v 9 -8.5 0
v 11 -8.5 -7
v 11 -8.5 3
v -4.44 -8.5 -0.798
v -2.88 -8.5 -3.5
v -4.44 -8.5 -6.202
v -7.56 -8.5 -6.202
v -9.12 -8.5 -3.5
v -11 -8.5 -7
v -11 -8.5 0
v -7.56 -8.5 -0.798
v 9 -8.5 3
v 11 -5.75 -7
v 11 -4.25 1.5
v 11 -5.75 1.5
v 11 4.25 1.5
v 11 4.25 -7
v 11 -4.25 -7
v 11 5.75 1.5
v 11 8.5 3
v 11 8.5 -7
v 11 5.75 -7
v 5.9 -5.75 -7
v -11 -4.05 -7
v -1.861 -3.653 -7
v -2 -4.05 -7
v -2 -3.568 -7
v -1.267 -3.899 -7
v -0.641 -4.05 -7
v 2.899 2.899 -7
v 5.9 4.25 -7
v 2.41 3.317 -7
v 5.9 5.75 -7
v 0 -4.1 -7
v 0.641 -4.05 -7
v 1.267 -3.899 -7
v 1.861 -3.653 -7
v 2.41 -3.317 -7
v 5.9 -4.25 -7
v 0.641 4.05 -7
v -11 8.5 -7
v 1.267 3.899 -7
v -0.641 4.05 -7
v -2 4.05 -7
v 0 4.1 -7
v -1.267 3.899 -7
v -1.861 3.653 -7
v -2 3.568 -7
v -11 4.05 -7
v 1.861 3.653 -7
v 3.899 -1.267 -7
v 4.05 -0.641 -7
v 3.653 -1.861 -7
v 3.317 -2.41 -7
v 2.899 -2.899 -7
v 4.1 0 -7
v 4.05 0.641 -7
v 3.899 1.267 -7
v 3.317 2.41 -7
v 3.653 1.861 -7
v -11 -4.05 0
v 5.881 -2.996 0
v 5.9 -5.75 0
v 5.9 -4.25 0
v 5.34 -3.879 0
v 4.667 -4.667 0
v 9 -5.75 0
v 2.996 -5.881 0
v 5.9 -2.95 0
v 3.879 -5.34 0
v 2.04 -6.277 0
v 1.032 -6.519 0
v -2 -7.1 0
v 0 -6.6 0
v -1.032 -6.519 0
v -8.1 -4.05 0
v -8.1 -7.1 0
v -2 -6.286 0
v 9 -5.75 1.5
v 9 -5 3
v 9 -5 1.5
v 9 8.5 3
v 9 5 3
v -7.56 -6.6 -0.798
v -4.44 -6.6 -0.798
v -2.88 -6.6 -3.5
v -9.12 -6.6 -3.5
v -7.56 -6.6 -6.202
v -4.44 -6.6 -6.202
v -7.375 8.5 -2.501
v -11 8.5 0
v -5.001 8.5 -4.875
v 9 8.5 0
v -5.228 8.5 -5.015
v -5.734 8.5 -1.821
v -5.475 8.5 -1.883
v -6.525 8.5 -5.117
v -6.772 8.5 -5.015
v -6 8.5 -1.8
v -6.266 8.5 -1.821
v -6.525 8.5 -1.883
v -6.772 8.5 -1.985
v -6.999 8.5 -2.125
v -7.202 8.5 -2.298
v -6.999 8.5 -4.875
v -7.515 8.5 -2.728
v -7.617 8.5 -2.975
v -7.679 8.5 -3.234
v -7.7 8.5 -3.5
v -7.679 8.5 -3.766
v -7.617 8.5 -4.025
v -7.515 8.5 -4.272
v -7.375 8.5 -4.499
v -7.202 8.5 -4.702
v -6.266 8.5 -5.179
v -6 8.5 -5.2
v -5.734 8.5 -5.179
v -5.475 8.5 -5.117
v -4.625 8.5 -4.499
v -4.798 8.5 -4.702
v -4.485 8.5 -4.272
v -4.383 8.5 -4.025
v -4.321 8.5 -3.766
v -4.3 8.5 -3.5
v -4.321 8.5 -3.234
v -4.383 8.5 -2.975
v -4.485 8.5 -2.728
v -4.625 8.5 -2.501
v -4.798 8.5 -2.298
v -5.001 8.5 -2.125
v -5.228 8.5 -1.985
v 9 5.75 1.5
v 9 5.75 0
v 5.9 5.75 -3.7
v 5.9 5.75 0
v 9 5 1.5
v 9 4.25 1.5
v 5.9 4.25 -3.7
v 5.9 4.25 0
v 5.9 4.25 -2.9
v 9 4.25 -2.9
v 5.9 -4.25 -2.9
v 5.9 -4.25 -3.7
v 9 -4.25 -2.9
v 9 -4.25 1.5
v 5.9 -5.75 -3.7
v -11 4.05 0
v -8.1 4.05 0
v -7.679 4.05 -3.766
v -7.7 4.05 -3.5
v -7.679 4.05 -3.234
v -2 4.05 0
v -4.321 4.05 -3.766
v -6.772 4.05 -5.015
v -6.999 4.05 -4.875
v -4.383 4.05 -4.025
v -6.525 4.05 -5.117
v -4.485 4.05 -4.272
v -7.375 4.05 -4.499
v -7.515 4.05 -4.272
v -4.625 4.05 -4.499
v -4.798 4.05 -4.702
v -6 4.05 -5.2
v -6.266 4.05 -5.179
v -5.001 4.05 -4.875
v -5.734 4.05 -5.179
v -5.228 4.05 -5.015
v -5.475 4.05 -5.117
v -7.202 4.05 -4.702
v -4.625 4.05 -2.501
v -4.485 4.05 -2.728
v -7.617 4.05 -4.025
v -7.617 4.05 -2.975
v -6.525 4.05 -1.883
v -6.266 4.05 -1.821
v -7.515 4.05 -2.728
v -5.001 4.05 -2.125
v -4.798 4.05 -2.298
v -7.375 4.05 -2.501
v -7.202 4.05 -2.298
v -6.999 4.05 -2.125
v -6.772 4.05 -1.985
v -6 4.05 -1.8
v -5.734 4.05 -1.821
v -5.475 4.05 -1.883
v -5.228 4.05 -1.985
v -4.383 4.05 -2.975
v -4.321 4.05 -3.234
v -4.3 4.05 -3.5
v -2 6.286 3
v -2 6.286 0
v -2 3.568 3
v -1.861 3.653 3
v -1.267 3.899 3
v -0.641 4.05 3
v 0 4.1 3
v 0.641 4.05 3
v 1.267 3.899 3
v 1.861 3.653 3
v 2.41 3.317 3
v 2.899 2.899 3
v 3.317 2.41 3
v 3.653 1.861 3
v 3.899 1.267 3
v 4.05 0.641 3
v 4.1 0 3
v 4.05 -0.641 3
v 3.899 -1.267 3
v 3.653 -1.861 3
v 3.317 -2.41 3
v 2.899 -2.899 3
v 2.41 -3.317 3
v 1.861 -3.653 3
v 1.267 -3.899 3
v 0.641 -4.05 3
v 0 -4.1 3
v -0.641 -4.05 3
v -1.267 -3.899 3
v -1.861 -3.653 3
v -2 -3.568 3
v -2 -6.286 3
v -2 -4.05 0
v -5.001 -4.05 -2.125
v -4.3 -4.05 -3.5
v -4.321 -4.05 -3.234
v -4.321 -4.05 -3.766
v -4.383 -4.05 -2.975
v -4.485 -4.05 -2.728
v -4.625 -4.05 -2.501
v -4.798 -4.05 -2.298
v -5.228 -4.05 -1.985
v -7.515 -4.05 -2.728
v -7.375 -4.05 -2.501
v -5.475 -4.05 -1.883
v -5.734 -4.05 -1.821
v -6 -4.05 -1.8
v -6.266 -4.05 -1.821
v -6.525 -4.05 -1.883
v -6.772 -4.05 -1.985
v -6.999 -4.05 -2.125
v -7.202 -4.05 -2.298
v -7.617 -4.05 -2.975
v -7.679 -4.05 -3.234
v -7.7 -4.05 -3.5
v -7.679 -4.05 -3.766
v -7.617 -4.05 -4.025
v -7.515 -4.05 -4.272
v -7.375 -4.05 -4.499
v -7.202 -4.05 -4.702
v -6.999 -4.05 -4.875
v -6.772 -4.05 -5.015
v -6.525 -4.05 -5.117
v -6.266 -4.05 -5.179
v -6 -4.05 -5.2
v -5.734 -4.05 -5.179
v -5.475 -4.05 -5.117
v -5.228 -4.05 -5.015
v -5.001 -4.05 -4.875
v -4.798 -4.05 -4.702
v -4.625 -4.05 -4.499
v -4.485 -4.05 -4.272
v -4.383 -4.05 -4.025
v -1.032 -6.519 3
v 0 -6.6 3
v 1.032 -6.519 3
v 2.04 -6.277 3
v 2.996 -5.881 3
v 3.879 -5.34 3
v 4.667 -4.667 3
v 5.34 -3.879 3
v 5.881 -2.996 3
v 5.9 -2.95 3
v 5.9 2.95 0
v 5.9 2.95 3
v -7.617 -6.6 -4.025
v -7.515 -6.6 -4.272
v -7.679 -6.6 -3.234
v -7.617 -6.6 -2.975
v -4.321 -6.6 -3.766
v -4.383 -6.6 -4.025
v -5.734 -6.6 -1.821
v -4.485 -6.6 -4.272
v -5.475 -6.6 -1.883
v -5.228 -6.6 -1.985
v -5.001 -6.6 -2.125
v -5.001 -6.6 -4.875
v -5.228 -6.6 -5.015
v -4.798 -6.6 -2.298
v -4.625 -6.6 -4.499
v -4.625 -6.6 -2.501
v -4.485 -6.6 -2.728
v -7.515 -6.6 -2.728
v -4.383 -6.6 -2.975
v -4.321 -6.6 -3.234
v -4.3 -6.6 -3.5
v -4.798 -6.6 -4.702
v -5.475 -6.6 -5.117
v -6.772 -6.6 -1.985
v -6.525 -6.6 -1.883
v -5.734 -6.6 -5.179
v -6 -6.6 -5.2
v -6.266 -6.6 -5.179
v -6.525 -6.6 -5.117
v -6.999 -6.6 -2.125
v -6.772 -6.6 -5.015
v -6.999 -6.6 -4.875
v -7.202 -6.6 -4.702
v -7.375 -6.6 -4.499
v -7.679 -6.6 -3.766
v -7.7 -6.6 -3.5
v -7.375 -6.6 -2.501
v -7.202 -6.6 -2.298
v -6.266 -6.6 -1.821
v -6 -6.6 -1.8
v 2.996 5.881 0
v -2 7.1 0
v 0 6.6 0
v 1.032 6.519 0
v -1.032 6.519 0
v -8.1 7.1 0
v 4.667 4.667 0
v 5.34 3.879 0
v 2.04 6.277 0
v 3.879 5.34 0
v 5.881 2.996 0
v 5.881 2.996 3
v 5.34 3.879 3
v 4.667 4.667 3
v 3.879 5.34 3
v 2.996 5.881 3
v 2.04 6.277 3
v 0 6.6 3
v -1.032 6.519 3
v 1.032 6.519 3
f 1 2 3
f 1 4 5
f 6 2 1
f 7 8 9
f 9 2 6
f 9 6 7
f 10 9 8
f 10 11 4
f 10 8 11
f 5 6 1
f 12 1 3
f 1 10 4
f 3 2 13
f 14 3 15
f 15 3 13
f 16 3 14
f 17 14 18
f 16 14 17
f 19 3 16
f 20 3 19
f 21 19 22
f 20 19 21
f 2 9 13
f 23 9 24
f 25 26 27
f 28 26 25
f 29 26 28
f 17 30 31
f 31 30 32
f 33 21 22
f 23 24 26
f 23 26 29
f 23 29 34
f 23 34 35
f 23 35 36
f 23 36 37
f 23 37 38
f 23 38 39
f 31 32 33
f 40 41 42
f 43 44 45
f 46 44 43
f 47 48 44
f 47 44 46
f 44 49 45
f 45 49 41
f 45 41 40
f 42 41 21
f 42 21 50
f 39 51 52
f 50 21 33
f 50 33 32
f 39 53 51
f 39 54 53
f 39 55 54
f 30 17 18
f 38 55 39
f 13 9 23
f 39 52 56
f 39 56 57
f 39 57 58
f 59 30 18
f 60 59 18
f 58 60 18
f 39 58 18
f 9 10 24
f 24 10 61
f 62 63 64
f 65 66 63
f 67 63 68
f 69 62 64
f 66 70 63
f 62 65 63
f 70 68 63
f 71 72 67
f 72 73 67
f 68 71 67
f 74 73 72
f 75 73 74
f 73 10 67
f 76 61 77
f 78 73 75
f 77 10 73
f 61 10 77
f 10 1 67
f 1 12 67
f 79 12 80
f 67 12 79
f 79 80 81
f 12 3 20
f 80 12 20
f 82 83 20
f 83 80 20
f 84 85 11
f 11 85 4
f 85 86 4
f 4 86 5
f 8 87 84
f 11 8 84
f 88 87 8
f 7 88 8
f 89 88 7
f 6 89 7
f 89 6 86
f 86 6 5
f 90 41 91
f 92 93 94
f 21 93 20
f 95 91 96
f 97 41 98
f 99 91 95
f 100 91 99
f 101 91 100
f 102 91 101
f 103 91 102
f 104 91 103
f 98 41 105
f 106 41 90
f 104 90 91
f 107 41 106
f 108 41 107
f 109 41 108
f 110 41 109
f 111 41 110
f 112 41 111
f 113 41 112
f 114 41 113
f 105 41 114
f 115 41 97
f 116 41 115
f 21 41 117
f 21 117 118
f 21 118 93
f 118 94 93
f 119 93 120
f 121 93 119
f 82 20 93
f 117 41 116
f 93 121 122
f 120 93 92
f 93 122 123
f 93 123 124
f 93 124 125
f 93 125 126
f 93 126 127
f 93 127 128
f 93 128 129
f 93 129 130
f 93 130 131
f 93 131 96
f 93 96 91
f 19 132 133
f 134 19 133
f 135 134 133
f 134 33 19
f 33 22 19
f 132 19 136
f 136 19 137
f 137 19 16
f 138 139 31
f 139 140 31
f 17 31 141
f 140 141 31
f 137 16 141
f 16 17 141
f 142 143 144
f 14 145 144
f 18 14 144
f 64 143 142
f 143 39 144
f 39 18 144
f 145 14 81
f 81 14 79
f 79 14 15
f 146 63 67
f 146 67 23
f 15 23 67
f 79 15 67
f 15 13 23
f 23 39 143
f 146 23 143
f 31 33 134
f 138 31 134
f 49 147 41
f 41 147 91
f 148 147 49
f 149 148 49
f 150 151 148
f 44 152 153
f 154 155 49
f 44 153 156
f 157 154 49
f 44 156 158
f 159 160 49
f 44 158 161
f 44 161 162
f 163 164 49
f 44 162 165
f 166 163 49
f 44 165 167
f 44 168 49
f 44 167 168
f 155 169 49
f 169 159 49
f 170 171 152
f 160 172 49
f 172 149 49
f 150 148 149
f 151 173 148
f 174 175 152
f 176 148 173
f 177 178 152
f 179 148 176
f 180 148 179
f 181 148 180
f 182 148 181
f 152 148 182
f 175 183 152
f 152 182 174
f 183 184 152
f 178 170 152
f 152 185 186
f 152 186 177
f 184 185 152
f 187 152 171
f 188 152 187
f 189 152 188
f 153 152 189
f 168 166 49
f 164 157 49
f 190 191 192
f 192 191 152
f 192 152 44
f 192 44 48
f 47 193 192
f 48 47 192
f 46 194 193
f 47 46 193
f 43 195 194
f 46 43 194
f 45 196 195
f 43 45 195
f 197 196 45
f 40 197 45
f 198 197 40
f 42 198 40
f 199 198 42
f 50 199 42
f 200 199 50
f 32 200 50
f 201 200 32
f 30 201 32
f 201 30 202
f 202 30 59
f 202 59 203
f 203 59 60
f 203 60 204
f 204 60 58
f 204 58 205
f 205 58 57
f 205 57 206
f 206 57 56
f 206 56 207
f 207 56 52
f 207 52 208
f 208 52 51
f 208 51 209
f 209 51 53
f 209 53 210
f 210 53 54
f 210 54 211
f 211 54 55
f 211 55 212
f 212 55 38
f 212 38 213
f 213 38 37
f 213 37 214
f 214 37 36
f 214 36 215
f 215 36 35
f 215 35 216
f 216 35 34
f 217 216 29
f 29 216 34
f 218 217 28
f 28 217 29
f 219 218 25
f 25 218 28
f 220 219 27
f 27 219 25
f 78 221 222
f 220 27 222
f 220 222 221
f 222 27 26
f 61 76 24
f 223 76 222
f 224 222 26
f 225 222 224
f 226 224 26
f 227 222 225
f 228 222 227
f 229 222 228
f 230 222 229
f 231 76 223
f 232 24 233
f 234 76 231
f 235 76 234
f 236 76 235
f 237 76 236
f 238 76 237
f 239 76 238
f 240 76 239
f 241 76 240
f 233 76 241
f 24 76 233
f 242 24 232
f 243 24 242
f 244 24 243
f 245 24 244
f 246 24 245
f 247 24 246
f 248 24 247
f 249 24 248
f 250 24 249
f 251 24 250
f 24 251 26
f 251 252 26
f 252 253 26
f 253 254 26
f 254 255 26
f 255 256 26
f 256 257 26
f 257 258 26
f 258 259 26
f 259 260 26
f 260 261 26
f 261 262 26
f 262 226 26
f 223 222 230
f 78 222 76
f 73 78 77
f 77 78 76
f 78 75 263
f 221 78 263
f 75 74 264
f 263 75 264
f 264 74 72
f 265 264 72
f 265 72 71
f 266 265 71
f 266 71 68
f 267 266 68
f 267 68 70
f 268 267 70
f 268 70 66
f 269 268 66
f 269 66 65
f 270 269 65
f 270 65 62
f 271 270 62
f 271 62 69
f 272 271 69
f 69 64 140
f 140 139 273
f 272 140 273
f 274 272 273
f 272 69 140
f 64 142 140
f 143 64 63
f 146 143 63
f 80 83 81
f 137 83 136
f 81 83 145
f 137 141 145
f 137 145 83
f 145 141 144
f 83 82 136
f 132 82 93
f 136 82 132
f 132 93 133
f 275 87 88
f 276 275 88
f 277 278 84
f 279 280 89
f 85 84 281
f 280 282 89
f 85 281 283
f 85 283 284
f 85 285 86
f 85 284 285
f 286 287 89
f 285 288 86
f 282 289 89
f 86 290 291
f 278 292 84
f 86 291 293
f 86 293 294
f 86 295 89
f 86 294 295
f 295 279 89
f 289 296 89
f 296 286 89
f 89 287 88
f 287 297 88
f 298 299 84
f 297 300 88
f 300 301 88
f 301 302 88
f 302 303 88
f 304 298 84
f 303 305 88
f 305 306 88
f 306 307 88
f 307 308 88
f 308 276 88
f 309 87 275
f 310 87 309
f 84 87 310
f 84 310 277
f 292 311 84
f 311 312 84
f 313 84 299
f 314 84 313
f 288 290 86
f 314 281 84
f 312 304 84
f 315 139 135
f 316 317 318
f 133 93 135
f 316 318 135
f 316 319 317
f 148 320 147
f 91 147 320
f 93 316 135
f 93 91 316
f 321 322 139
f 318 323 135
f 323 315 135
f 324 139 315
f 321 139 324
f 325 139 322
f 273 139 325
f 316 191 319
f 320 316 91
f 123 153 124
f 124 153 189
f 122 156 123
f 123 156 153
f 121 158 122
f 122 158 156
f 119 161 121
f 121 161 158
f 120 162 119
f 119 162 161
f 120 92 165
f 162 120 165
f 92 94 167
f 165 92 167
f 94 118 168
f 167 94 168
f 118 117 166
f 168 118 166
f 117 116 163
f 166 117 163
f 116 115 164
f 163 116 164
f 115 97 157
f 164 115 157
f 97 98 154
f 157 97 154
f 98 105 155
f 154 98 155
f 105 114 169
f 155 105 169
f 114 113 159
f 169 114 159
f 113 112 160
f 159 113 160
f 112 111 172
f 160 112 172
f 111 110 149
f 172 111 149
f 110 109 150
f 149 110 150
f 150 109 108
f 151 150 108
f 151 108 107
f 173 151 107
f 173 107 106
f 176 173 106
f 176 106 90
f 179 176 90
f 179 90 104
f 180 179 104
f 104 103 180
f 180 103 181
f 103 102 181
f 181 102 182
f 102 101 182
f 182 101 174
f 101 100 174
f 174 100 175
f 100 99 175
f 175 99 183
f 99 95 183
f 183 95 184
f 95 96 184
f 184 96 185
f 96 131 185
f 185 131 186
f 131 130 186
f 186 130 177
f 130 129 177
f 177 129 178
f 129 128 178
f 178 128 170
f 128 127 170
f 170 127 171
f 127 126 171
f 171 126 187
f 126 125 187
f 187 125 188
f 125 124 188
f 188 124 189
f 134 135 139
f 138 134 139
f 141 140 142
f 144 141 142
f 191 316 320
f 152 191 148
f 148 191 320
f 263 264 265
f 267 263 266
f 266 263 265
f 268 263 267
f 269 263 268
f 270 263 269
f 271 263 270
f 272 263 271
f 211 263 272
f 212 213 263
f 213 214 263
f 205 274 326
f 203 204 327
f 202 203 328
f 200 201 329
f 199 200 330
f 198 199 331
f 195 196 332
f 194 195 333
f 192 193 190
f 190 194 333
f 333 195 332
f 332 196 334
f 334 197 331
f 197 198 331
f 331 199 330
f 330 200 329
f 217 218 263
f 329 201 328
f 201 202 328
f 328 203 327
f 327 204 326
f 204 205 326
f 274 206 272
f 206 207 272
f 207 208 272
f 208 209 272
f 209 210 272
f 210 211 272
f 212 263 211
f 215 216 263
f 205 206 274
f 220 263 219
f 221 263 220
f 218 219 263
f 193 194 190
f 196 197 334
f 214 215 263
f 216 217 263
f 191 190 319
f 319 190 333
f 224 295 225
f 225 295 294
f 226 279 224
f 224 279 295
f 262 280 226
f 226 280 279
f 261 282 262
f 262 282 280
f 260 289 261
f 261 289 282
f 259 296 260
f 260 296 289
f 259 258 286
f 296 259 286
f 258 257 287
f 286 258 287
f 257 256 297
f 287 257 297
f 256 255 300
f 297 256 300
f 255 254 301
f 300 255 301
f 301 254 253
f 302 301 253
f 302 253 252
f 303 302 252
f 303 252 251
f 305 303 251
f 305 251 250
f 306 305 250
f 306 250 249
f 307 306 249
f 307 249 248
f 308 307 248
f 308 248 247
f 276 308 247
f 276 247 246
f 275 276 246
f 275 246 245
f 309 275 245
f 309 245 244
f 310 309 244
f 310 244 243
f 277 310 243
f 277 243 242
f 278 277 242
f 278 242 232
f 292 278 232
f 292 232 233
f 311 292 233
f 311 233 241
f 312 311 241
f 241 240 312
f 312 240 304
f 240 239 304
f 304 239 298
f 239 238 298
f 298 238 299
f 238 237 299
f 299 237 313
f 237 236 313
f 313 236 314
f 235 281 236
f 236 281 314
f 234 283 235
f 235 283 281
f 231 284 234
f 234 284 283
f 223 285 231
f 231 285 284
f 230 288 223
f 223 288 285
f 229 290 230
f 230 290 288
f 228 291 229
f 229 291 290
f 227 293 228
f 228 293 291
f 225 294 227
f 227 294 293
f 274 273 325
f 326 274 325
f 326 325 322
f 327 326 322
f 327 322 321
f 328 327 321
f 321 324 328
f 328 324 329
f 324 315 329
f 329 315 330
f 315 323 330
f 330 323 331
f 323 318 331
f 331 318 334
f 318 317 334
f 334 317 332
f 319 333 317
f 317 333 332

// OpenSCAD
tol=0.1;
$fn=40;
width = 17;
length=22;
//height = 5;
switch_plate_length=2;
switch_plate_height=3;

for(i = [ 0 : 1 : 5 ])
{
//translate([0,25*i,0]) stopswitch_holder(2*i/5,5*i/5,4+i/5);
}

stopswitch_holder(1.5,5+tol*2,7);

module stopswitch_holder(ziptie_w=1.2,ziptie_h=4,height=5){

	rotate([0,0,90])
	difference() {
		union() {
			translate([-width/2,-length/2,-height]) cube(size=[width,length,height]);
			translate([-width/2,-length/2,0]) cube(size=[width,switch_plate_length,switch_plate_height]);
			// cone
			translate([0,0,-height]) cylinder(r=6.5+tol,h=height+switch_plate_height);
		}
		
		translate([0,0,-height-tol]) #cylinder(r=4+tol,h=height+switch_plate_height+2*tol);
		//translate([0,0,-1]) #cylinder(r=5+tol,h=6);

    // Ziptie holes
    translate([0,-length/2-tol,-ziptie_h+switch_plate_height-1.5])
    for(i = [ 0,-90 ]){
        rotate([i,0,0]){
          // gaten zipties
          translate([-10/2-ziptie_w/2,0,0]) cube(size=[ziptie_w,switch_plate_length+2*tol+3,ziptie_h,]);
          translate([10/2-ziptie_w/2,0,0]) cube(size=[ziptie_w,switch_plate_length+2*tol+3,ziptie_h,]);
        }
    }
		// extra balkje onder zipties
		translate([-10/2,-length/2+switch_plate_length,switch_plate_height+tol]) rotate([0,90,0]) cube(size=[height-1,3+tol,10]);
		

		
		// klem gat
		translate([(-8-tol)/2,2,-height-tol]) #cube(size=[8+tol,length/2+tol,height+2*tol]);

		// weggommen halve cirkel geleidingsbus
		translate([(-7-tol),2,0]) cube(size=[14+2*tol,12/2+tol,switch_plate_height+2*tol]);

		// spleet voor ziptie achter rod
		//translate([(-width/2-tol),-length/2+switch_plate_length,0]) #cube(size=[width+2*tol,1,switch_plate_height+2*tol]);

		// schroefgat
		translate([-width/2-tol,6,-height/2]) rotate([0,90,0]) #cylinder(r=1.5+tol*2,h=width+2*tol);
		translate([-width/2-tol,6,-height/2]) rotate([0,90,0]) rotate([0,0,30]) #cylinder($fn=6,r=3.12,h=2);
		


	}
}
